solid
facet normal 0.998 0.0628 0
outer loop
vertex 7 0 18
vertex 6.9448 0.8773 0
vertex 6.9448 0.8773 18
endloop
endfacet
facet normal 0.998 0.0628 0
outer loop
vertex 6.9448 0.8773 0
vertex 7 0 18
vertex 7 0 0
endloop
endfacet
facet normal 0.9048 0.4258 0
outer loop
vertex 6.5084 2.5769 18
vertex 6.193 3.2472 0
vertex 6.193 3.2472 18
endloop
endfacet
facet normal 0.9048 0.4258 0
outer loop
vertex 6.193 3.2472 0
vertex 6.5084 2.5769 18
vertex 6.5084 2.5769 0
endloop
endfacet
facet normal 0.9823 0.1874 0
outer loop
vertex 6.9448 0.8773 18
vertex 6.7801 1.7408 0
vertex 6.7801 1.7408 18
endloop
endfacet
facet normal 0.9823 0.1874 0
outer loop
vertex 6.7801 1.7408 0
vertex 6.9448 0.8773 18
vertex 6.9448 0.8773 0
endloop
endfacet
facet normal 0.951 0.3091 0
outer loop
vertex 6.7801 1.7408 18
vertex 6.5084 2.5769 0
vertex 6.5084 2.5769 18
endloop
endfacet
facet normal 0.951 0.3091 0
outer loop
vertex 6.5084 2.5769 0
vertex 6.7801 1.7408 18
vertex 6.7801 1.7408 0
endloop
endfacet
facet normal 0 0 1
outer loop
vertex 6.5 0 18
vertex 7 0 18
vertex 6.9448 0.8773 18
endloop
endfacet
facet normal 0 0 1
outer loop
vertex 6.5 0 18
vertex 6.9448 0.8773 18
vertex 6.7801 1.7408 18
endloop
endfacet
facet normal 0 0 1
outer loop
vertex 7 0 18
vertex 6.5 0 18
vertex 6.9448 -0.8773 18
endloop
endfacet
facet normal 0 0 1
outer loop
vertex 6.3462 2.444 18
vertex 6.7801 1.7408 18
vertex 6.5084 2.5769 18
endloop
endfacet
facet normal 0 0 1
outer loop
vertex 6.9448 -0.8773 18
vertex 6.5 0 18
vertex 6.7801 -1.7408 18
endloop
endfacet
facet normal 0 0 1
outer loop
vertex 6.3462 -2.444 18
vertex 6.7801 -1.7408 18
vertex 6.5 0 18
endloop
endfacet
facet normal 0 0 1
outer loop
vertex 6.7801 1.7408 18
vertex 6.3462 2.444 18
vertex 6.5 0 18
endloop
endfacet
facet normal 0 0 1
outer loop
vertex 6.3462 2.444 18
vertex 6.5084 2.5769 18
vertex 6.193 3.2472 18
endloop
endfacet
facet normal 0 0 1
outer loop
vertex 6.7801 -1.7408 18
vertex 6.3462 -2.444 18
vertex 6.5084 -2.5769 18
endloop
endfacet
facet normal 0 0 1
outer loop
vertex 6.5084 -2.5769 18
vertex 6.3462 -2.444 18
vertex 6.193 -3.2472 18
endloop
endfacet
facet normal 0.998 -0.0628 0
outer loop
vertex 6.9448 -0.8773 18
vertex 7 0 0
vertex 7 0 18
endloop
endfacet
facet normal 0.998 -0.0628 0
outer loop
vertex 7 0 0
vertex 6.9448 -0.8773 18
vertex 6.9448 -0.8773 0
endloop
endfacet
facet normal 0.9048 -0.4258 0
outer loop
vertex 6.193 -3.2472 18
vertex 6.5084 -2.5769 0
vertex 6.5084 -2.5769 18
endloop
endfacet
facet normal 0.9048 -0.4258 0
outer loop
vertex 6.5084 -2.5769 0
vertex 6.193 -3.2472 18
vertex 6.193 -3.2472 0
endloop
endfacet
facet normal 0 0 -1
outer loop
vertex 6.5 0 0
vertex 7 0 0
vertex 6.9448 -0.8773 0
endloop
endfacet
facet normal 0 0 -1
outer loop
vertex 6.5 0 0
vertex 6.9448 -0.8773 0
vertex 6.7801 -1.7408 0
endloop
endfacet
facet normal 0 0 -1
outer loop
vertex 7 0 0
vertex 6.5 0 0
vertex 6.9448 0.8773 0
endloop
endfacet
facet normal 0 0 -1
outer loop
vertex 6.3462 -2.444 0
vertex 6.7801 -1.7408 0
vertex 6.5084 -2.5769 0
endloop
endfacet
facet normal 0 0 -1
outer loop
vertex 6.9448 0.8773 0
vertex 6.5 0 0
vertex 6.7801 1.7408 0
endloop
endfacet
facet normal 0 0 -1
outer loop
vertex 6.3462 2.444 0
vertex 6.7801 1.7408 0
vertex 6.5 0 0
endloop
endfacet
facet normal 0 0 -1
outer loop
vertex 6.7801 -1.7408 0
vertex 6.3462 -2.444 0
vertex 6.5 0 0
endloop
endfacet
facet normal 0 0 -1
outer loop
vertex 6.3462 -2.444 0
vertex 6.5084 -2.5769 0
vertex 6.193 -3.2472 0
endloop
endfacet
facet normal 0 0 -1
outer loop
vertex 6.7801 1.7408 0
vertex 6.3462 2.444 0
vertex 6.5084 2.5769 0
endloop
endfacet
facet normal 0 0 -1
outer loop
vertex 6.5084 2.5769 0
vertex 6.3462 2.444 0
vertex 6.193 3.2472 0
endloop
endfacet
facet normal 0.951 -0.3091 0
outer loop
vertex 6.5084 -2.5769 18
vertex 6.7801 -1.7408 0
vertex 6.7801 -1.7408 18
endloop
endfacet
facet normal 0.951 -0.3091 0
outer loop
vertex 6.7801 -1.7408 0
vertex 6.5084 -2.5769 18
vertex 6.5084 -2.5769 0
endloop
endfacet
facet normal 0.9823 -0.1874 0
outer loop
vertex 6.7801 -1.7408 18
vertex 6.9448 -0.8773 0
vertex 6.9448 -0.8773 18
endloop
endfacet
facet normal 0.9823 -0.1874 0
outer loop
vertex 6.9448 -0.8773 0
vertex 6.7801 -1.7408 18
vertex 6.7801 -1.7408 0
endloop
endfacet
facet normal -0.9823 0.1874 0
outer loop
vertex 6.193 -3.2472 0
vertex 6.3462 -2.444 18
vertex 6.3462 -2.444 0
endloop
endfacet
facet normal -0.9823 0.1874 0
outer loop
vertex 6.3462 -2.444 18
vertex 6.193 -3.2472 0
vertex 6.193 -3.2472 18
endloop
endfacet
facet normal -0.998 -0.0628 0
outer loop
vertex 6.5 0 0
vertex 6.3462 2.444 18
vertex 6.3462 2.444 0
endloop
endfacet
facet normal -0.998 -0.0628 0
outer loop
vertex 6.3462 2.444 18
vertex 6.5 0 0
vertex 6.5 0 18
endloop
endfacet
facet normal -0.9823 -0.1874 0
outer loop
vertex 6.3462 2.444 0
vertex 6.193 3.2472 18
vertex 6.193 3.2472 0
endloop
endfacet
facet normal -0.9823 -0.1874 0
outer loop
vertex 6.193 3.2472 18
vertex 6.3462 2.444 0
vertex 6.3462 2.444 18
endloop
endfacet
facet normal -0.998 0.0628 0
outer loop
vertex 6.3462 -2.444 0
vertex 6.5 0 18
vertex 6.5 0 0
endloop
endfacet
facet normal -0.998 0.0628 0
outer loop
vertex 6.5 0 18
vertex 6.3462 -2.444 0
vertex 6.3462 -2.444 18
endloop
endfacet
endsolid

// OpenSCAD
$fn = 50;


difference() {
	union() {
		cylinder(h = 18, r = 7.0000000000);
		translate(v = [-16.0000000000, 0, 0]) {
			cylinder(h = 18, r = 7.0000000000);
		}
	}
	union() {
		cylinder(h = 18, r = 3.2500000000);
		cylinder(h = 18, r = 1.8000000000);
		cylinder(h = 18, r = 1.8000000000);
		cylinder(h = 18, r = 1.8000000000);
		translate(v = [-20.5000000000, 0, 0]) {
			hull() {
				translate(v = [-3.7500000000, 0.0000000000, 0]) {
					cylinder(h = 18, r = 10.5000000000);
				}
				translate(v = [3.7500000000, 0.0000000000, 0]) {
					cylinder(h = 18, r = 10.5000000000);
				}
				translate(v = [-3.7500000000, -0.0000000000, 0]) {
					cylinder(h = 18, r = 10.5000000000);
				}
				translate(v = [3.7500000000, -0.0000000000, 0]) {
					cylinder(h = 18, r = 10.5000000000);
				}
			}
		}
		translate(v = [-13.0000000000, 0, 0.0000000000]) {
			cylinder(h = 18, r = 19.5000000000);
		}
	}
}
